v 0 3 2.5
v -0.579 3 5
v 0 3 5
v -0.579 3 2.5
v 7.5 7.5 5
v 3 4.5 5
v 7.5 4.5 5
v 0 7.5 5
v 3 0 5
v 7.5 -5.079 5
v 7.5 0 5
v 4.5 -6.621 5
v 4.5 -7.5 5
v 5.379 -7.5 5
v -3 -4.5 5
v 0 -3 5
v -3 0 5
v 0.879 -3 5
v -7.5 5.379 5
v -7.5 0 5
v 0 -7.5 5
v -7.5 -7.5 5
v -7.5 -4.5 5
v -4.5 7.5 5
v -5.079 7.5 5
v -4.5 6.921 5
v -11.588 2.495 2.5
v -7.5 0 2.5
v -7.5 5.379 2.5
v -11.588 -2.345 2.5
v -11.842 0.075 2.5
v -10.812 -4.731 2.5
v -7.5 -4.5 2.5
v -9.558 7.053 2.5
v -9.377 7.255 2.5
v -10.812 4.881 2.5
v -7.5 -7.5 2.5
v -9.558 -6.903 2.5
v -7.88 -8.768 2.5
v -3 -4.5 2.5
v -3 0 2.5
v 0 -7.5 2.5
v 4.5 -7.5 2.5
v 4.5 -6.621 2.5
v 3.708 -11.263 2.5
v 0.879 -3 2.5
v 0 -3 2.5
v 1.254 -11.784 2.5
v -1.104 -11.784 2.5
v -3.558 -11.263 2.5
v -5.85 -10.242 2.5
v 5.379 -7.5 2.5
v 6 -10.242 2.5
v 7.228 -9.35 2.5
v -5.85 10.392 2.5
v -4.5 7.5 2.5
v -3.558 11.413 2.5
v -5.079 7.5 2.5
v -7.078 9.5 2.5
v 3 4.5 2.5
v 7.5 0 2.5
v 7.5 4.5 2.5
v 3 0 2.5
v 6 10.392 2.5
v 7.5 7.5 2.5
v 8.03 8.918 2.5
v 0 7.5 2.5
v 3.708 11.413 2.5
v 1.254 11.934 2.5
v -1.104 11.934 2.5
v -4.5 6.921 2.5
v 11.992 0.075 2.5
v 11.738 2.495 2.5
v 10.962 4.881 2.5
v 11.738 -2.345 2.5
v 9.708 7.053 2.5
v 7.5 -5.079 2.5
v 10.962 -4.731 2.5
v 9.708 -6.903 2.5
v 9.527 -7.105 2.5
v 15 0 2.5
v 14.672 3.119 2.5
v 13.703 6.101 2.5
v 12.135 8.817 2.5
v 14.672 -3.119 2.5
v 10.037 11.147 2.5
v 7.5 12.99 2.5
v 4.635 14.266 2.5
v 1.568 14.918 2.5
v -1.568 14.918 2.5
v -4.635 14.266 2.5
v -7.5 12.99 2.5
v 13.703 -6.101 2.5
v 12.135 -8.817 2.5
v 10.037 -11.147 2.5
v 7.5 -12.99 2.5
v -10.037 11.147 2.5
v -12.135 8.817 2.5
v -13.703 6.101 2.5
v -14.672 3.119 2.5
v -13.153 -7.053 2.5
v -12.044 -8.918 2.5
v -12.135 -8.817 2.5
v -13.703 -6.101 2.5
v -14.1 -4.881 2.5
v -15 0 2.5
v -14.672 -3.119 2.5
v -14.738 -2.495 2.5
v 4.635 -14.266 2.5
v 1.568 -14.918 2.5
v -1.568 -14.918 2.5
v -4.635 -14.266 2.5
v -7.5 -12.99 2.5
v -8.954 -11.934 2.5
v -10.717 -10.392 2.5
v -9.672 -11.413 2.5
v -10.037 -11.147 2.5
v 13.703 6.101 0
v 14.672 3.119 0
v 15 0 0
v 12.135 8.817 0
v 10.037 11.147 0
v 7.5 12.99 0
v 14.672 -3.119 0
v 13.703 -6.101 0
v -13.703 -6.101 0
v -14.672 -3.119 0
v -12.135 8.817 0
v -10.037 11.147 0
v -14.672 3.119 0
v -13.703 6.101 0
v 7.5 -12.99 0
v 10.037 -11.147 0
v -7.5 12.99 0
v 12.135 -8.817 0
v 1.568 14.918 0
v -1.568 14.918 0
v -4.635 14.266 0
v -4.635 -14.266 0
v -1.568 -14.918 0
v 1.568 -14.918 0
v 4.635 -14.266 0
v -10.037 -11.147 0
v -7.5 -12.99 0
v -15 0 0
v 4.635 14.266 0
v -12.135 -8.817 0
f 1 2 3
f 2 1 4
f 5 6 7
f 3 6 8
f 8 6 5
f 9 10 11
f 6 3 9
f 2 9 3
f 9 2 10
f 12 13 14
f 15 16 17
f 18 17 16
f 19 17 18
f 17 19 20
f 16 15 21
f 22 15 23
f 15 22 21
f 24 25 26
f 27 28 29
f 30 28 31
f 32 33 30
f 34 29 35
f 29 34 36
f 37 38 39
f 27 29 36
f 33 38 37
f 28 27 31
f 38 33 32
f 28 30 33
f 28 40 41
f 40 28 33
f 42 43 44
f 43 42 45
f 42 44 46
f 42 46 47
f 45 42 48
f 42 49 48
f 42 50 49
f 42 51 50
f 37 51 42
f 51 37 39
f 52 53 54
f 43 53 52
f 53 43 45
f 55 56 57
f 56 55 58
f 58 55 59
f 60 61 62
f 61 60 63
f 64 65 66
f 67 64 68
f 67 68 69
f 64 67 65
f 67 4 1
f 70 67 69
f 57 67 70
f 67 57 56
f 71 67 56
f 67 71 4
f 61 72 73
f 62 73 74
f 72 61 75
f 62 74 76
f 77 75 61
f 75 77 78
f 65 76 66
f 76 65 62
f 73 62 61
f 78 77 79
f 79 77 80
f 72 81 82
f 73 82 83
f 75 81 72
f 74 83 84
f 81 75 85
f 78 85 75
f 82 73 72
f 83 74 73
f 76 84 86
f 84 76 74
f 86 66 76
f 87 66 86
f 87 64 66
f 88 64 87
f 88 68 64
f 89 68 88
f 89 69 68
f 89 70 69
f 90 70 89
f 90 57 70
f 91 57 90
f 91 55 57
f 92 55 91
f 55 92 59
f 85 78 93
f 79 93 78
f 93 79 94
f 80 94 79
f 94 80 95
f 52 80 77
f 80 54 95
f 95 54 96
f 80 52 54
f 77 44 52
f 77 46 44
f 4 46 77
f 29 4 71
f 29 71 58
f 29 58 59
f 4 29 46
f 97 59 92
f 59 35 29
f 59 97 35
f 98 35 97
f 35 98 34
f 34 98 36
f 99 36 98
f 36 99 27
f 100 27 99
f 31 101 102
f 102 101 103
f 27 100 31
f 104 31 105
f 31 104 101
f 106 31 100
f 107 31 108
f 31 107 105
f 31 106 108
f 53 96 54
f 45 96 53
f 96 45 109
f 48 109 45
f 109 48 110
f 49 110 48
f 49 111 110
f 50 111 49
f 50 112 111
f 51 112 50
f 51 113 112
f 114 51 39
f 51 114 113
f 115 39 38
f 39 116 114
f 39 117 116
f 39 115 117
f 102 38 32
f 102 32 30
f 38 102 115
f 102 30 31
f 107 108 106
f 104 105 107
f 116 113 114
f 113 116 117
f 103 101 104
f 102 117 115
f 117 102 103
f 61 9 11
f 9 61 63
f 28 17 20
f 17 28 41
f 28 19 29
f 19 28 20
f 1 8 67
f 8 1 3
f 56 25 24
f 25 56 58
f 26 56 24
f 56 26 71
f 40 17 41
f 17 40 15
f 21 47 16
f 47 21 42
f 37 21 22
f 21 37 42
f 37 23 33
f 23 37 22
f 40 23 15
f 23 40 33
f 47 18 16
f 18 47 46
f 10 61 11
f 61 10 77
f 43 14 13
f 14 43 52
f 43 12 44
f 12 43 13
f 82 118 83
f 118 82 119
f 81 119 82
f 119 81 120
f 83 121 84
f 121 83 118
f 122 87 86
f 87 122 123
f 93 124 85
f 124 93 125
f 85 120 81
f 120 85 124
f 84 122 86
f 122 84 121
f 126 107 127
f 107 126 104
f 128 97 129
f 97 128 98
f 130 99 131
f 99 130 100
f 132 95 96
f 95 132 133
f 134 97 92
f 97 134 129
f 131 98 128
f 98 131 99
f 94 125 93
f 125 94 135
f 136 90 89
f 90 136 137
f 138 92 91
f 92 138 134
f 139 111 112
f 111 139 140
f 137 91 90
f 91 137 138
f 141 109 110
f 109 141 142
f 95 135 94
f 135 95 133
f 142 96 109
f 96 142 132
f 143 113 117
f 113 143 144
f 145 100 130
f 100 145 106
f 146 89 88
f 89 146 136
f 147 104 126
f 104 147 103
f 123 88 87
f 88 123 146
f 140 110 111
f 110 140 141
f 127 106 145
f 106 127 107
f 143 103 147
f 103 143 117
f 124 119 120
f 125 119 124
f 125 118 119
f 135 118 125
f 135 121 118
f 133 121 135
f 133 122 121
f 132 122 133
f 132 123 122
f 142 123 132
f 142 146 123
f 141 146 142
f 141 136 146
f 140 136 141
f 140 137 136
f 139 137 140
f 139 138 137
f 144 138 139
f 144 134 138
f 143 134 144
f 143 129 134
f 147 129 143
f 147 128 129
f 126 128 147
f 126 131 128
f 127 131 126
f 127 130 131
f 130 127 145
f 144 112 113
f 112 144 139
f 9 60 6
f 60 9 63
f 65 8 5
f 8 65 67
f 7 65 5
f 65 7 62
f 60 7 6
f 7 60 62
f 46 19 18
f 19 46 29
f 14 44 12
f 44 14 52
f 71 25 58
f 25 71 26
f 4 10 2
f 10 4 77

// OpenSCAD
translate(v = [0, 0, 2.5]) {
	difference() {
		union() {
			translate(v = [0, 0, -2.5]) {
				cylinder(h = 2.5, r = 15.0);
			}
			cube(size = [3.0, 7.5, 2.5]);
			translate(v = [0, 4.5, 0]) {
				cube(size = [7.5, 3.0, 2.5]);
			}
			rotate(a = [0, 0, 90]) {
				union() {
					cube(size = [3.0, 7.5, 2.5]);
					translate(v = [0, 4.5, 0]) {
						cube(size = [7.5, 3.0, 2.5]);
					}
				}
			}
			rotate(a = [0, 0, 180]) {
				union() {
					cube(size = [3.0, 7.5, 2.5]);
					translate(v = [0, 4.5, 0]) {
						cube(size = [7.5, 3.0, 2.5]);
					}
				}
			}
			rotate(a = [0, 0, 270]) {
				union() {
					cube(size = [3.0, 7.5, 2.5]);
					translate(v = [0, 4.5, 0]) {
						cube(size = [7.5, 3.0, 2.5]);
					}
				}
			}
		}
		minkowski() {
			union() {
				difference() {
					cylinder(h = 2.5, r = 15.0);
					cylinder(h = 2.5, r = 12.0);
				}
				rotate(a = [0, 0, -45]) {
					translate(v = [-13.5, 0, 0]) {
						translate(v = [0, -1.5, 0]) {
							cube(size = [27.0, 3.0, 2.5]);
						}
					}
				}
			}
			cube(size = [0.15, 0.15, 0.15]);
		}
	}
}
